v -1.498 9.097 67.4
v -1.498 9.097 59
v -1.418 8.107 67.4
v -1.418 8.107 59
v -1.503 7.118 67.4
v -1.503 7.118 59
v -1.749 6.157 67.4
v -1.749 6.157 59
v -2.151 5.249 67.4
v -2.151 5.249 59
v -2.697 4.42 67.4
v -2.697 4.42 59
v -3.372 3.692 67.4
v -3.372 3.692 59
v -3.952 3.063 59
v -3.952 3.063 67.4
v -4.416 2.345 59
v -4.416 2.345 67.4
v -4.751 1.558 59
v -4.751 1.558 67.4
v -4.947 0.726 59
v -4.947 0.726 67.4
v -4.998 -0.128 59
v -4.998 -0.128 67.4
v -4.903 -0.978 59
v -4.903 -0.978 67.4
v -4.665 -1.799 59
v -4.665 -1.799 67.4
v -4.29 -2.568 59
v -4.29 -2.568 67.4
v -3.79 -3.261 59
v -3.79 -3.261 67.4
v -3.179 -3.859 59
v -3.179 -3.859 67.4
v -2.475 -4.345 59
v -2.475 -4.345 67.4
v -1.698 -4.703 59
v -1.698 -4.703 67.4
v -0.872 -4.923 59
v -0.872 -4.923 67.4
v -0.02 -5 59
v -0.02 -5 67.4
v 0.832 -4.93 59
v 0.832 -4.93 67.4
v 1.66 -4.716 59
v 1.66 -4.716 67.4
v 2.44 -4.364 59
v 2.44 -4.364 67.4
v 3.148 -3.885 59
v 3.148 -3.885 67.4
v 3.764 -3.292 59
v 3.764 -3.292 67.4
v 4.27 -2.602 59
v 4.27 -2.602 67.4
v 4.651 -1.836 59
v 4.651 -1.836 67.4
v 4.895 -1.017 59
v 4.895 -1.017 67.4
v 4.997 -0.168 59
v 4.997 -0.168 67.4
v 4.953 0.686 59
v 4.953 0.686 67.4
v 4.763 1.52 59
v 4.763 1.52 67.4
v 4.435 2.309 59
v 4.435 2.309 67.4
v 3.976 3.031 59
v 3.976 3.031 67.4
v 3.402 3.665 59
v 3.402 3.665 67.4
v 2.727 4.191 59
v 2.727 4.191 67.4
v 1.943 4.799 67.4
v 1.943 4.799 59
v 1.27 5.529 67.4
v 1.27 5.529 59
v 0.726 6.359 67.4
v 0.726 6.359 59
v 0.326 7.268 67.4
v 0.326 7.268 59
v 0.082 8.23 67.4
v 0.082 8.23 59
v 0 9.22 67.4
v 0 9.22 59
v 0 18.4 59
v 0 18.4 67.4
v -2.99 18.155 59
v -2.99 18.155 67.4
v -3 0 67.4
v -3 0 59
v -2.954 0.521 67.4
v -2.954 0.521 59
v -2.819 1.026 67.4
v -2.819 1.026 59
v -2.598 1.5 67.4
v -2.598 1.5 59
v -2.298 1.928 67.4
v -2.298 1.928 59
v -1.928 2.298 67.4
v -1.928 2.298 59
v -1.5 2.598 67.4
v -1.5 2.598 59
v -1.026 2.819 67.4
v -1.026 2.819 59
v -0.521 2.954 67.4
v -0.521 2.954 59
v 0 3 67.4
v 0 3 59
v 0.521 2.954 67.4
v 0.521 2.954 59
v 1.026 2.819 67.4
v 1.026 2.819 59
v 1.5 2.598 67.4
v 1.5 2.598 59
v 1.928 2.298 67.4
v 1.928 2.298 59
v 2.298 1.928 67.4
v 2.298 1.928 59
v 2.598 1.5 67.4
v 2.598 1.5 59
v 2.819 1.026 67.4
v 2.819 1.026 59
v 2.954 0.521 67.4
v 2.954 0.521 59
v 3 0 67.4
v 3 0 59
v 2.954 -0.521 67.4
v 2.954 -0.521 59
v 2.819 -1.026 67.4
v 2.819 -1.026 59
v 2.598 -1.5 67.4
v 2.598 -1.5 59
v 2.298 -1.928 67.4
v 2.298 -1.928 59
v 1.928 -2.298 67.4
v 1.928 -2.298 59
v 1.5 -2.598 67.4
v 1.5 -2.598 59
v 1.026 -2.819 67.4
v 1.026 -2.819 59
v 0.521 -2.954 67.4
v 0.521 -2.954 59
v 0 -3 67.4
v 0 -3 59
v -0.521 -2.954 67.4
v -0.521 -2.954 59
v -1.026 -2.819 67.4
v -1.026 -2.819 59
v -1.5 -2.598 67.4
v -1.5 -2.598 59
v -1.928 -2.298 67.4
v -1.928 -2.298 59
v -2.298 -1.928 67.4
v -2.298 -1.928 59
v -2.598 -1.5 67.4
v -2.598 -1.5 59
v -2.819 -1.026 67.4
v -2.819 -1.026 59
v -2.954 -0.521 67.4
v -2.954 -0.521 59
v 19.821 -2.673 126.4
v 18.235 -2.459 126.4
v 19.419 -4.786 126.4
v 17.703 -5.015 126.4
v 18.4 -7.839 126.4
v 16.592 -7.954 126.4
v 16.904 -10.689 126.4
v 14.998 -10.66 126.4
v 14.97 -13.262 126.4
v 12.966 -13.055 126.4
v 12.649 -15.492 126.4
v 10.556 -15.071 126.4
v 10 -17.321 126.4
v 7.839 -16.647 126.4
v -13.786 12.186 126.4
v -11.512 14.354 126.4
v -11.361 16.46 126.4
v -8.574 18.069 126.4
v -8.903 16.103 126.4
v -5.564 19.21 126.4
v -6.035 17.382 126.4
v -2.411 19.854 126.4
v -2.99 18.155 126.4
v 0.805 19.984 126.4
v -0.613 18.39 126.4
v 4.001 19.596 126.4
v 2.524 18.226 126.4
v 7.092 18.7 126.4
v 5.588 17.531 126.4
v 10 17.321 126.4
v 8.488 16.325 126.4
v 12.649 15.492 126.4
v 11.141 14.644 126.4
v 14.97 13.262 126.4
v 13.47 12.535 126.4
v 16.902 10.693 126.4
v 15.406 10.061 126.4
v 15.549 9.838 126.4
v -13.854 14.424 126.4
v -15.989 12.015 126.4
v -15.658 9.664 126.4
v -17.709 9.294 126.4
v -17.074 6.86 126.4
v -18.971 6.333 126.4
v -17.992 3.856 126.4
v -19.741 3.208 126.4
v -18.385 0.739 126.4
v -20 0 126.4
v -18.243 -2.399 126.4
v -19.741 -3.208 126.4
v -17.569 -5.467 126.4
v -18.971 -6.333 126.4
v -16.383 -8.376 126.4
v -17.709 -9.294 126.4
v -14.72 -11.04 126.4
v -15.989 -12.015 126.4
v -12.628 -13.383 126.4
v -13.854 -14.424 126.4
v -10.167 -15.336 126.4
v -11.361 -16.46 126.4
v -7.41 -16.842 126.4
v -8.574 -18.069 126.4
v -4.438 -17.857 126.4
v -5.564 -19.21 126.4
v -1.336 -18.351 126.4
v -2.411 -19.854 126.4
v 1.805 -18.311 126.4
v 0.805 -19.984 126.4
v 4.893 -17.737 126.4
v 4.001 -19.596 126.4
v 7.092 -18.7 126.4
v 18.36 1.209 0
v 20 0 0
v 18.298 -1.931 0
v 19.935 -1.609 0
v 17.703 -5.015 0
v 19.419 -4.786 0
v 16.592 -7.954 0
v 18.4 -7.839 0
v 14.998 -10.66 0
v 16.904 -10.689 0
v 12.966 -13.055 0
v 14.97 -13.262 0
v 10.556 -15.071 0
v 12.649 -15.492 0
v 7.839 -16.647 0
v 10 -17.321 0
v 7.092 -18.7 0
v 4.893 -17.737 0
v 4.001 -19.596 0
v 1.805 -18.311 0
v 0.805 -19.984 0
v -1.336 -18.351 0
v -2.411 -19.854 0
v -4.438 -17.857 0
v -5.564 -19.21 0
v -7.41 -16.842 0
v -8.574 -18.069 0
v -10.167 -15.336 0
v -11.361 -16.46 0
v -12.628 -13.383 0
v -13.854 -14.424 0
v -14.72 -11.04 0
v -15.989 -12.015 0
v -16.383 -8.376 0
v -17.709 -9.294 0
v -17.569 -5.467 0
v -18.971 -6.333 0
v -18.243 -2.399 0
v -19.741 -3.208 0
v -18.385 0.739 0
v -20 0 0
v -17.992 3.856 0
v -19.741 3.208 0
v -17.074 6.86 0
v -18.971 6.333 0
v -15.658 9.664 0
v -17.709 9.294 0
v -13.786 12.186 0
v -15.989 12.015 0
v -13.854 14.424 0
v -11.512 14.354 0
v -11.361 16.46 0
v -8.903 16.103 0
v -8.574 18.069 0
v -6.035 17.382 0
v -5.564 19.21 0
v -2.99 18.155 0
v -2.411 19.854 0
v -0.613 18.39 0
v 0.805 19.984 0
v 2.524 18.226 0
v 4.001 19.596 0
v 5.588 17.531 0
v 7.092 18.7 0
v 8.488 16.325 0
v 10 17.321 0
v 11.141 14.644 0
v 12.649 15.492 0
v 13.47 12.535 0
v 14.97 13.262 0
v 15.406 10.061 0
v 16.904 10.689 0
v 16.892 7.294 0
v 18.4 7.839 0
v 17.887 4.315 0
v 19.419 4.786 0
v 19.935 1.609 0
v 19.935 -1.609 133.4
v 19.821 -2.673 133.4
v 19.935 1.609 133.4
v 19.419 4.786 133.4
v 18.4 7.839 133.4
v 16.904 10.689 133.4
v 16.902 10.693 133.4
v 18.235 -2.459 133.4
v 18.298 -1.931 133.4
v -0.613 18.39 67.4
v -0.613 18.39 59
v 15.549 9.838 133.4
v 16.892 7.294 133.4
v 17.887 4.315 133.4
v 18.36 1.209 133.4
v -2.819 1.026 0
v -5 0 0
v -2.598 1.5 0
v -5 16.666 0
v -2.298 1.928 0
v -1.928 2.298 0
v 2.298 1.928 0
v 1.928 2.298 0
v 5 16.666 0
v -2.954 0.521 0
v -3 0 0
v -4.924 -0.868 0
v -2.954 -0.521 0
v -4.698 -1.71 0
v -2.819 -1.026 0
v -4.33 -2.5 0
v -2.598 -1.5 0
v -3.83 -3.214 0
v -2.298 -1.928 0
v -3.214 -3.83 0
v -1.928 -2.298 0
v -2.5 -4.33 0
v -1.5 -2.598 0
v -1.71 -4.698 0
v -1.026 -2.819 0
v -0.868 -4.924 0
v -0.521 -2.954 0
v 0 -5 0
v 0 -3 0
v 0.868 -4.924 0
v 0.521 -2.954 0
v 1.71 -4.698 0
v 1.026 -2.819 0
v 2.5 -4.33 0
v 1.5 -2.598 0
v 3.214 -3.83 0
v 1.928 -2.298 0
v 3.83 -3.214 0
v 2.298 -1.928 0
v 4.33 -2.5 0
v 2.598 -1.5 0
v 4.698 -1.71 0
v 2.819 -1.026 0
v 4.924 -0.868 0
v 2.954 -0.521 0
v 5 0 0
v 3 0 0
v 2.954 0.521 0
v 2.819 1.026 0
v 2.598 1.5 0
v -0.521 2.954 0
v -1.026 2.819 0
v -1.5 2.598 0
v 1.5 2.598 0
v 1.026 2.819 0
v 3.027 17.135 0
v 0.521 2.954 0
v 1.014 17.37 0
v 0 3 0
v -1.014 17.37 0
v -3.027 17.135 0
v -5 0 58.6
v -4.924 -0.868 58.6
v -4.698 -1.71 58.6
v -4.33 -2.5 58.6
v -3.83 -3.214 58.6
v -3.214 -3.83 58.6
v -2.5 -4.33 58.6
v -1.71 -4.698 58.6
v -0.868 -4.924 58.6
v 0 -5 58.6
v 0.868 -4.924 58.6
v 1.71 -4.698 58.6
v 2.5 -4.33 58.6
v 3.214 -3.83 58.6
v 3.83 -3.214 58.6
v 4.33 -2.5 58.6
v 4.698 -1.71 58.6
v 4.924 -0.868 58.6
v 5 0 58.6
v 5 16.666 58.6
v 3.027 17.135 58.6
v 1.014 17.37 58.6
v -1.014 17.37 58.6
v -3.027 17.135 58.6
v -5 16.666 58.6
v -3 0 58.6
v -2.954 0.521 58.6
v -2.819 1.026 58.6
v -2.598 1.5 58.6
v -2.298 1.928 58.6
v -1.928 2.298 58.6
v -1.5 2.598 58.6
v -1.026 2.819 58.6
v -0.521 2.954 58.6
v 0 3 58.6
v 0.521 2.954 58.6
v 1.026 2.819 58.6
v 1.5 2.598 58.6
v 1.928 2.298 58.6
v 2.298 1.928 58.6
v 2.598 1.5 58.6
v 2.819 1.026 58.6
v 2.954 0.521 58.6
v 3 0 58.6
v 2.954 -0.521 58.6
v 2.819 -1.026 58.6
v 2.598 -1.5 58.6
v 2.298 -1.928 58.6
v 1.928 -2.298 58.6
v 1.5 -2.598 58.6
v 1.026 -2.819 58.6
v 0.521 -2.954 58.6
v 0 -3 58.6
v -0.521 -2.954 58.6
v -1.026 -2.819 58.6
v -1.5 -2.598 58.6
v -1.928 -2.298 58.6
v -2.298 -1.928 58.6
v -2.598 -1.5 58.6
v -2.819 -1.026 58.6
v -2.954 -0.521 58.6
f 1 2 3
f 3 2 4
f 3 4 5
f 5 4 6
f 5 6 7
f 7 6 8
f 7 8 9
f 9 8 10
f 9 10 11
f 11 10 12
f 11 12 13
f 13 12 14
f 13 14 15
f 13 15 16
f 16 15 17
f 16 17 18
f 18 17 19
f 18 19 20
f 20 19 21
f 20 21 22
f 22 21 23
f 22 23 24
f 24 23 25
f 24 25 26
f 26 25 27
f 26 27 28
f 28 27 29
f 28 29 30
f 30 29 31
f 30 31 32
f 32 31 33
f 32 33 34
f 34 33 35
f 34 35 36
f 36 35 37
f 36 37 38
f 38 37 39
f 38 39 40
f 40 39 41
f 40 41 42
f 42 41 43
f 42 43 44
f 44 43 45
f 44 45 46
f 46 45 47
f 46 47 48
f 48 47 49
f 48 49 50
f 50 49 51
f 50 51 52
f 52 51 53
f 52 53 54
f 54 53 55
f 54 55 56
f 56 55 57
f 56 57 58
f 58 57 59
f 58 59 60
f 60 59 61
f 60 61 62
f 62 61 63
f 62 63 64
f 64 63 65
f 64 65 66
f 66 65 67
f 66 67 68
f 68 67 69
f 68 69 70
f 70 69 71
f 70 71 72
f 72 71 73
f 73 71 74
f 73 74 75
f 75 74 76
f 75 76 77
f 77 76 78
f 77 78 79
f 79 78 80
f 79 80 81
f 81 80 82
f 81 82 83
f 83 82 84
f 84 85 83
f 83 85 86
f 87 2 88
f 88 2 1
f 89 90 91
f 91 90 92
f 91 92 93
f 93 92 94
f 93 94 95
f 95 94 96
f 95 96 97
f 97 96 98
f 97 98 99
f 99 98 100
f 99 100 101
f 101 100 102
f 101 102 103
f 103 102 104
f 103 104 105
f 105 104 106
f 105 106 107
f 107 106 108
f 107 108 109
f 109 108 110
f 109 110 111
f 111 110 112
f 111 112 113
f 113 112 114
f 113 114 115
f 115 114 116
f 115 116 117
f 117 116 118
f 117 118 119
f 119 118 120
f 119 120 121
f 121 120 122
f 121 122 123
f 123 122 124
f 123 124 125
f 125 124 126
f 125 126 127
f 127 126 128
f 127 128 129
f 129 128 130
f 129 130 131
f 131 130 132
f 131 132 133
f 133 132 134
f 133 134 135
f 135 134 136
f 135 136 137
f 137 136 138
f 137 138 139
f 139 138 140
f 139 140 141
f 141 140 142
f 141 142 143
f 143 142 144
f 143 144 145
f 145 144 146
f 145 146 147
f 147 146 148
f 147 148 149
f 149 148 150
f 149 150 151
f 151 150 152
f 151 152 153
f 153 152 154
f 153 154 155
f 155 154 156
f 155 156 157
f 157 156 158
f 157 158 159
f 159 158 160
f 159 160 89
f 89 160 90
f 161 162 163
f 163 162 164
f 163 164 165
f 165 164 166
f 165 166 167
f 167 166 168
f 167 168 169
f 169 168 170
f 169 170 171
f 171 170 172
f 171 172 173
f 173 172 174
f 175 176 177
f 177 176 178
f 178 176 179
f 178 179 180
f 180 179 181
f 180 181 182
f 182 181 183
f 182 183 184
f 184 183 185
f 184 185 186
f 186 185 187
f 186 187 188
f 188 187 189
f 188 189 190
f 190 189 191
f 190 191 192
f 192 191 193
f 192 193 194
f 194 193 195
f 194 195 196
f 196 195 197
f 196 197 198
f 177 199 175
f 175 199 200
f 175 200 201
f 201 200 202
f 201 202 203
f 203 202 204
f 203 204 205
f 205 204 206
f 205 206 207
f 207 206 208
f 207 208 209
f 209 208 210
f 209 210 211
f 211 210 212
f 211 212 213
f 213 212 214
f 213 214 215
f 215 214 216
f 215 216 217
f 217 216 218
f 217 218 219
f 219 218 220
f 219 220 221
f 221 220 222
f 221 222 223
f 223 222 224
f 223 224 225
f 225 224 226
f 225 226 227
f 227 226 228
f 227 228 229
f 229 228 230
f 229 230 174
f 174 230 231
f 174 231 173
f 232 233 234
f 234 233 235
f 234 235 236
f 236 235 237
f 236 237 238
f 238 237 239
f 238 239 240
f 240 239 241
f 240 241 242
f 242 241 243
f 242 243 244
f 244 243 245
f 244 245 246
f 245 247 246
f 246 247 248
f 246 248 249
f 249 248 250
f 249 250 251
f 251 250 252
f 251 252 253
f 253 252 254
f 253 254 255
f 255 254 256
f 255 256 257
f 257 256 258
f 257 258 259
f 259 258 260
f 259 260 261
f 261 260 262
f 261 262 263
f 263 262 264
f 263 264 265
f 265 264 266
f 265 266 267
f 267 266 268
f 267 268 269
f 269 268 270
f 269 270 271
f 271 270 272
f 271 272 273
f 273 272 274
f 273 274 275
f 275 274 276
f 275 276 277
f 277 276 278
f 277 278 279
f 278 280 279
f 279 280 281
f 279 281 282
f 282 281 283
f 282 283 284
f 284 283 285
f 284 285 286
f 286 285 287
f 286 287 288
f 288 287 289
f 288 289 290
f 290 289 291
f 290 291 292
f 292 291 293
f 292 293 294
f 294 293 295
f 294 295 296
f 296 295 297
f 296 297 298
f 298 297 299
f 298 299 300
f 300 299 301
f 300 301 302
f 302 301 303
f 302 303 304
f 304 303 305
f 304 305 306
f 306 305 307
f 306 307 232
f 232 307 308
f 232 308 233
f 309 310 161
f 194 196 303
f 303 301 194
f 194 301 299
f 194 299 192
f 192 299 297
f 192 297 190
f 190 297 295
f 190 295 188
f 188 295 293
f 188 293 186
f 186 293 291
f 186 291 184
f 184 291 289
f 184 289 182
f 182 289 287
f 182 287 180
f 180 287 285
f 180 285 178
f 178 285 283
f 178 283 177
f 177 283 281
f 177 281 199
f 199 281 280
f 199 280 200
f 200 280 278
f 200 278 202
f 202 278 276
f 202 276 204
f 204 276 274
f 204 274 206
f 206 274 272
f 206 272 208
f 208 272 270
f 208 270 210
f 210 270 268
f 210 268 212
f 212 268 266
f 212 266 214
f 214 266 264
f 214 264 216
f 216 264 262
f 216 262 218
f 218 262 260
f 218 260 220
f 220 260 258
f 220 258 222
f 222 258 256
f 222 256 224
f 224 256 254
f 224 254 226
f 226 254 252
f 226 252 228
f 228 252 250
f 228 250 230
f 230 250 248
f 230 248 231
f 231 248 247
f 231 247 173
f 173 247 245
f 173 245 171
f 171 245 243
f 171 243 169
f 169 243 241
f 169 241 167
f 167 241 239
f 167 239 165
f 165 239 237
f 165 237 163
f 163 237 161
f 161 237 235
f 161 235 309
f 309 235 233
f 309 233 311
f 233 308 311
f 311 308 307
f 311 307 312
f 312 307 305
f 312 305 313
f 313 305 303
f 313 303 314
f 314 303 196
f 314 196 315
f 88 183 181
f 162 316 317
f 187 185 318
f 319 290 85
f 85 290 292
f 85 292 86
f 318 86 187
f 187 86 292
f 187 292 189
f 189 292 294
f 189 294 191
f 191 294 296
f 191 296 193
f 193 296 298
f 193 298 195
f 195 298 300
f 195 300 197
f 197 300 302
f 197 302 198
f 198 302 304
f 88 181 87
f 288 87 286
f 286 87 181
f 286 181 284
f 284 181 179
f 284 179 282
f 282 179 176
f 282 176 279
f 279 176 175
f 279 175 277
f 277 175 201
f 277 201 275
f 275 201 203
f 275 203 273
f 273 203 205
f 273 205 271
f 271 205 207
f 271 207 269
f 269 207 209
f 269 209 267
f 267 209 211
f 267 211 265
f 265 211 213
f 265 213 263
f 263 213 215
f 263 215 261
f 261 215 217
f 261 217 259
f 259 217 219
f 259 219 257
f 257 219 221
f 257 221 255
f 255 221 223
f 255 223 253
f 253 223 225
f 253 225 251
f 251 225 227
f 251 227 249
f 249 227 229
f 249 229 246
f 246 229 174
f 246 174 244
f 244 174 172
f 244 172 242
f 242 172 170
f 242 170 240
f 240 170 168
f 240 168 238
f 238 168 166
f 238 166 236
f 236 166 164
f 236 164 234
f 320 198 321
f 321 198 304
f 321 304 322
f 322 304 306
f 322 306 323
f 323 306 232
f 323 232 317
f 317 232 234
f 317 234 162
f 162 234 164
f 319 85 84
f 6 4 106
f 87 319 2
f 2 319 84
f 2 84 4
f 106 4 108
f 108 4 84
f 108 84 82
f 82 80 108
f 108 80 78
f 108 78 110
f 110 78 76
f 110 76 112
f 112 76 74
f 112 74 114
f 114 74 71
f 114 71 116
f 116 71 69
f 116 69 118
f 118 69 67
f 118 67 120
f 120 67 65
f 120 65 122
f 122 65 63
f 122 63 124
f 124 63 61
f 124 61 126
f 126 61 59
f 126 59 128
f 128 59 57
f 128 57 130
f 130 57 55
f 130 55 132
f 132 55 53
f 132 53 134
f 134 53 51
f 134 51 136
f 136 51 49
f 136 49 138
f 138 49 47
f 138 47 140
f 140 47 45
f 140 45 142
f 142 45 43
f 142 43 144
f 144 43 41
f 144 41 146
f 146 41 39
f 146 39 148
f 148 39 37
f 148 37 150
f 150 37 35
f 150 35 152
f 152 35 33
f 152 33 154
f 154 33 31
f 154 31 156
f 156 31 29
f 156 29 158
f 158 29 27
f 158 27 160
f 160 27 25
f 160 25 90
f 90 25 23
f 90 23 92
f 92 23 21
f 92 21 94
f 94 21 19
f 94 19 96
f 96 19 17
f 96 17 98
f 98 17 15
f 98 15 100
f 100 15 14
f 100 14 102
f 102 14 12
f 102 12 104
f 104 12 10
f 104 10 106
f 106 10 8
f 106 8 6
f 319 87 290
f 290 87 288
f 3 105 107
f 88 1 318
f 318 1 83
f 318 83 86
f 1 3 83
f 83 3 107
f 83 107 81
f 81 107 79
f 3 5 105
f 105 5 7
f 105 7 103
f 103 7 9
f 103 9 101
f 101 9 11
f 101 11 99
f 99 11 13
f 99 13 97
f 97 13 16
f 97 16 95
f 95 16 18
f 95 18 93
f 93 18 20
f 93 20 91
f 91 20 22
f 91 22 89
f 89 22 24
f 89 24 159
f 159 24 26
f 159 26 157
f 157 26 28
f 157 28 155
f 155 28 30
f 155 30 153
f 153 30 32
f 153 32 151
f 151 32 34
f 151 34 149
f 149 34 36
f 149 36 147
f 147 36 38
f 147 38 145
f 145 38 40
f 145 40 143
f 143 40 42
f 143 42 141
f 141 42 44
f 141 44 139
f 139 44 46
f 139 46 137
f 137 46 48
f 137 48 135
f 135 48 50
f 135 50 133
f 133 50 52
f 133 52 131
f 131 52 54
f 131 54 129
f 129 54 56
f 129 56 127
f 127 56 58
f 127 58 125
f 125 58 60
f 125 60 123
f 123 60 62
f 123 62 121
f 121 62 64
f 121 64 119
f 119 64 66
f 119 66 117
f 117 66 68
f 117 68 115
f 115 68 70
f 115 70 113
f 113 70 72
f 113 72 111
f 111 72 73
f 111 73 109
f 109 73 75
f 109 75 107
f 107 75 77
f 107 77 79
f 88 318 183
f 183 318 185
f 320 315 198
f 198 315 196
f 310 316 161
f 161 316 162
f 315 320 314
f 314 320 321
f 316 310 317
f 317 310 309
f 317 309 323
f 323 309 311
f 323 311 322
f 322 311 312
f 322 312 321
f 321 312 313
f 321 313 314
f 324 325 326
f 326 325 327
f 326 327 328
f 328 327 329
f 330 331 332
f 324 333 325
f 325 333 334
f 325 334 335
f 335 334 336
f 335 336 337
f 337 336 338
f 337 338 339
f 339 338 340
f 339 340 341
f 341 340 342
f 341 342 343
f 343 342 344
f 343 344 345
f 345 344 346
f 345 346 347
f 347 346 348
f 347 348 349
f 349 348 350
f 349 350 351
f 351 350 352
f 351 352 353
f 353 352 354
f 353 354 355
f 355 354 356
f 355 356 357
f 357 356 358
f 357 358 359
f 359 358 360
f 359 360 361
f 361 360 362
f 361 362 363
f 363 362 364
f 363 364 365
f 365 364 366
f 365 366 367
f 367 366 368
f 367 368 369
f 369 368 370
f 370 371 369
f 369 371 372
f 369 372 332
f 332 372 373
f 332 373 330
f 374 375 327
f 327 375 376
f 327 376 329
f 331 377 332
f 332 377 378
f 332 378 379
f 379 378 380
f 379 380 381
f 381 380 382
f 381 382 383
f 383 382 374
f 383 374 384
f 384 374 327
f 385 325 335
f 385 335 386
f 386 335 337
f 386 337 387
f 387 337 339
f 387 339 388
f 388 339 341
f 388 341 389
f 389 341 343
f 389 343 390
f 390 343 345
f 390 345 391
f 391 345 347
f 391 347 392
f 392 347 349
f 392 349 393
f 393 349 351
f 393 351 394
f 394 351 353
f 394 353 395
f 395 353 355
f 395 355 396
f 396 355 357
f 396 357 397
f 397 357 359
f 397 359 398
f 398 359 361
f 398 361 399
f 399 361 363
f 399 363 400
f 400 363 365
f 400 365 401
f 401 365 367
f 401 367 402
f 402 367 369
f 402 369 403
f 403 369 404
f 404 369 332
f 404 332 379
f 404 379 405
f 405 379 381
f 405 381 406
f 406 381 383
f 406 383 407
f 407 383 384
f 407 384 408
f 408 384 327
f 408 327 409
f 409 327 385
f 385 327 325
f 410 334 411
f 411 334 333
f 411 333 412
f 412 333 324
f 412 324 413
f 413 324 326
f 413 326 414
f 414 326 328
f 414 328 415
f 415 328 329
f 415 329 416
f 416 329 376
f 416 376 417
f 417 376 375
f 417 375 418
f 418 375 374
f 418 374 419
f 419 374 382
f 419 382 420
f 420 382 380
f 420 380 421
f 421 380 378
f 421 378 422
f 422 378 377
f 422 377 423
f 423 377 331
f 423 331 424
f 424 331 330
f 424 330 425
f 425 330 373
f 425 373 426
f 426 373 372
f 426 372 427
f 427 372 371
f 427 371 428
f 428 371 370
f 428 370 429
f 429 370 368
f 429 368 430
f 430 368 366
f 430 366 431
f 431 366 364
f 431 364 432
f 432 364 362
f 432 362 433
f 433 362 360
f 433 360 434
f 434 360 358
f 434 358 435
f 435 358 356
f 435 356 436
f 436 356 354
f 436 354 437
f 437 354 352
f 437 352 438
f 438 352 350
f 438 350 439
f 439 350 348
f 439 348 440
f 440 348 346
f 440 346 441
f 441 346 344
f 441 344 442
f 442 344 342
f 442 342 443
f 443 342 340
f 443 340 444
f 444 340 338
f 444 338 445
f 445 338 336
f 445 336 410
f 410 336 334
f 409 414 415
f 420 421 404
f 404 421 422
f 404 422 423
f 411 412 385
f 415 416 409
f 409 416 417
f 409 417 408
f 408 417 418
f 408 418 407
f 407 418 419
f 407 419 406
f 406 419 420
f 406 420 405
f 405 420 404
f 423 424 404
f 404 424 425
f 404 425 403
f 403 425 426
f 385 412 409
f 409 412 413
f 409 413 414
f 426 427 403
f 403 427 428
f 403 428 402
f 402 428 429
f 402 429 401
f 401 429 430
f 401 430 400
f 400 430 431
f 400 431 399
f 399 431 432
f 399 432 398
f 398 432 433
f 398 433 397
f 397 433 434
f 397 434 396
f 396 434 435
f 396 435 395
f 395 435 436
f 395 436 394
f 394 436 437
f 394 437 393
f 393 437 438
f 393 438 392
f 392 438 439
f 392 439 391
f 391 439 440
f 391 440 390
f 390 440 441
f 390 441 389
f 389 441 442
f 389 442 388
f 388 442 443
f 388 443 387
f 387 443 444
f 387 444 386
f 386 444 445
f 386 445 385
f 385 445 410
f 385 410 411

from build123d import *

# Parameters (mm, degrees)
SKETCH_2_R          = 20
SKETCH_2_R_2        = 18.4
EXTRUDE_1_DEPTH     = 126.4
SKETCH_5_R          = 3
EXTRUDE_3_DEPTH     = 126.4
CUT_EXTRUDE1_DEPTH  = 59
CUT_EXTRUDE2_DEPTH  = 59
BOSS_EXTRUDE4_DEPTH = 7
SKETCH3_R           = 3
BOSS_EXTRUDE6_DEPTH = 58.6


with BuildPart() as part:
    # Эскиз2 → Бобышка-Вытянуть1 (new body)
    with BuildSketch(Plane.XY):
        Circle(SKETCH_2_R)
        Circle(SKETCH_2_R_2, mode=Mode.SUBTRACT)
    extrude(amount=EXTRUDE_1_DEPTH)

    # Эскиз5 → Бобышка-Вытянуть3 (add, through all)
    with BuildSketch(Plane(origin=(0, 0, 0), x_dir=(-1, 0, 0), z_dir=(0, 0, -1))):
        with BuildLine():
            Line((0, 18.4), (0, 9.219544457))
            ThreePointArc((0, 9.219544457), (-0.725705562, 6.35915669), (-2.727272727, 4.190702026))
            ThreePointArc((-2.727272727, 4.190702026), (-0.407608696, -4.983357819), (3.372015367, 3.691816946))
            ThreePointArc((3.372015367, 3.691816946), (1.749427822, 6.156705666), (1.498183336, 9.097002072))
            Line((1.498183336, 9.097002072), (2.990014691, 18.155434783))
            ThreePointArc((2.990014691, 18.155434783), (1.5, 18.338756774), (0, 18.4))
        make_face()
        Circle(SKETCH_5_R, mode=Mode.SUBTRACT)
    extrude(amount=-EXTRUDE_3_DEPTH)

    # Sketch1 → Cut-Extrude1 (cut)
    with BuildSketch(Plane(origin=(0, 0, 0), x_dir=(-1, 0, 0), z_dir=(0, 0, -1))):
        with BuildLine():
            Line((0.612543111, 18.389801275), (2.990014691, 18.155434783))
            ThreePointArc((2.990014691, 18.155434783), (-1.805086589, -18.311244152), (0.612543111, 18.389801275))
        make_face()
    extrude(amount=-CUT_EXTRUDE1_DEPTH, mode=Mode.SUBTRACT)

    # Sketch2 → Cut-Extrude2 (cut)
    with BuildSketch(Plane.XY.offset(126.4)):
        with BuildLine():
            Line((-0.612543316, 18.389801268), (-2.990014691, 18.155434783))
            ThreePointArc((-2.990014691, 18.155434783), (1.805086691, -18.311244142), (-0.612543316, 18.389801268))
        make_face()
    extrude(amount=-CUT_EXTRUDE2_DEPTH, mode=Mode.SUBTRACT)

    # Sketch6 → Boss-Extrude4 (add)
    with BuildSketch(Plane.XY.offset(126.4)):
        with BuildLine():
            Line((16.901505151, 10.692947377), (15.549384739, 9.837511587))
            ThreePointArc((15.549384739, 9.837511587), (17.97626922, 3.926034248), (18.234950332, -2.458980763))
            Line((18.234950332, -2.458980763), (19.820598187, -2.672805177))
            ThreePointArc((19.820598187, -2.672805177), (19.539423066, 4.267428531), (16.901505151, 10.692947377))
        make_face()
    extrude(amount=BOSS_EXTRUDE4_DEPTH)


with BuildPart() as body_2:
    # Sketch3 → Boss-Extrude6 (new body)
    with BuildSketch(Plane.XY):
        with BuildLine():
            Line((5, 0), (5, 16.666133325))
            ThreePointArc((5, 16.666133325), (0, 17.4), (-5, 16.666133325))
            Line((-5, 16.666133325), (-5, 0))
            ThreePointArc((-5, 0), (0, -5), (5, 0))
        make_face()
        Circle(SKETCH3_R, mode=Mode.SUBTRACT)
    extrude(amount=BOSS_EXTRUDE6_DEPTH)


solid = Compound([part.part, body_2.part])
